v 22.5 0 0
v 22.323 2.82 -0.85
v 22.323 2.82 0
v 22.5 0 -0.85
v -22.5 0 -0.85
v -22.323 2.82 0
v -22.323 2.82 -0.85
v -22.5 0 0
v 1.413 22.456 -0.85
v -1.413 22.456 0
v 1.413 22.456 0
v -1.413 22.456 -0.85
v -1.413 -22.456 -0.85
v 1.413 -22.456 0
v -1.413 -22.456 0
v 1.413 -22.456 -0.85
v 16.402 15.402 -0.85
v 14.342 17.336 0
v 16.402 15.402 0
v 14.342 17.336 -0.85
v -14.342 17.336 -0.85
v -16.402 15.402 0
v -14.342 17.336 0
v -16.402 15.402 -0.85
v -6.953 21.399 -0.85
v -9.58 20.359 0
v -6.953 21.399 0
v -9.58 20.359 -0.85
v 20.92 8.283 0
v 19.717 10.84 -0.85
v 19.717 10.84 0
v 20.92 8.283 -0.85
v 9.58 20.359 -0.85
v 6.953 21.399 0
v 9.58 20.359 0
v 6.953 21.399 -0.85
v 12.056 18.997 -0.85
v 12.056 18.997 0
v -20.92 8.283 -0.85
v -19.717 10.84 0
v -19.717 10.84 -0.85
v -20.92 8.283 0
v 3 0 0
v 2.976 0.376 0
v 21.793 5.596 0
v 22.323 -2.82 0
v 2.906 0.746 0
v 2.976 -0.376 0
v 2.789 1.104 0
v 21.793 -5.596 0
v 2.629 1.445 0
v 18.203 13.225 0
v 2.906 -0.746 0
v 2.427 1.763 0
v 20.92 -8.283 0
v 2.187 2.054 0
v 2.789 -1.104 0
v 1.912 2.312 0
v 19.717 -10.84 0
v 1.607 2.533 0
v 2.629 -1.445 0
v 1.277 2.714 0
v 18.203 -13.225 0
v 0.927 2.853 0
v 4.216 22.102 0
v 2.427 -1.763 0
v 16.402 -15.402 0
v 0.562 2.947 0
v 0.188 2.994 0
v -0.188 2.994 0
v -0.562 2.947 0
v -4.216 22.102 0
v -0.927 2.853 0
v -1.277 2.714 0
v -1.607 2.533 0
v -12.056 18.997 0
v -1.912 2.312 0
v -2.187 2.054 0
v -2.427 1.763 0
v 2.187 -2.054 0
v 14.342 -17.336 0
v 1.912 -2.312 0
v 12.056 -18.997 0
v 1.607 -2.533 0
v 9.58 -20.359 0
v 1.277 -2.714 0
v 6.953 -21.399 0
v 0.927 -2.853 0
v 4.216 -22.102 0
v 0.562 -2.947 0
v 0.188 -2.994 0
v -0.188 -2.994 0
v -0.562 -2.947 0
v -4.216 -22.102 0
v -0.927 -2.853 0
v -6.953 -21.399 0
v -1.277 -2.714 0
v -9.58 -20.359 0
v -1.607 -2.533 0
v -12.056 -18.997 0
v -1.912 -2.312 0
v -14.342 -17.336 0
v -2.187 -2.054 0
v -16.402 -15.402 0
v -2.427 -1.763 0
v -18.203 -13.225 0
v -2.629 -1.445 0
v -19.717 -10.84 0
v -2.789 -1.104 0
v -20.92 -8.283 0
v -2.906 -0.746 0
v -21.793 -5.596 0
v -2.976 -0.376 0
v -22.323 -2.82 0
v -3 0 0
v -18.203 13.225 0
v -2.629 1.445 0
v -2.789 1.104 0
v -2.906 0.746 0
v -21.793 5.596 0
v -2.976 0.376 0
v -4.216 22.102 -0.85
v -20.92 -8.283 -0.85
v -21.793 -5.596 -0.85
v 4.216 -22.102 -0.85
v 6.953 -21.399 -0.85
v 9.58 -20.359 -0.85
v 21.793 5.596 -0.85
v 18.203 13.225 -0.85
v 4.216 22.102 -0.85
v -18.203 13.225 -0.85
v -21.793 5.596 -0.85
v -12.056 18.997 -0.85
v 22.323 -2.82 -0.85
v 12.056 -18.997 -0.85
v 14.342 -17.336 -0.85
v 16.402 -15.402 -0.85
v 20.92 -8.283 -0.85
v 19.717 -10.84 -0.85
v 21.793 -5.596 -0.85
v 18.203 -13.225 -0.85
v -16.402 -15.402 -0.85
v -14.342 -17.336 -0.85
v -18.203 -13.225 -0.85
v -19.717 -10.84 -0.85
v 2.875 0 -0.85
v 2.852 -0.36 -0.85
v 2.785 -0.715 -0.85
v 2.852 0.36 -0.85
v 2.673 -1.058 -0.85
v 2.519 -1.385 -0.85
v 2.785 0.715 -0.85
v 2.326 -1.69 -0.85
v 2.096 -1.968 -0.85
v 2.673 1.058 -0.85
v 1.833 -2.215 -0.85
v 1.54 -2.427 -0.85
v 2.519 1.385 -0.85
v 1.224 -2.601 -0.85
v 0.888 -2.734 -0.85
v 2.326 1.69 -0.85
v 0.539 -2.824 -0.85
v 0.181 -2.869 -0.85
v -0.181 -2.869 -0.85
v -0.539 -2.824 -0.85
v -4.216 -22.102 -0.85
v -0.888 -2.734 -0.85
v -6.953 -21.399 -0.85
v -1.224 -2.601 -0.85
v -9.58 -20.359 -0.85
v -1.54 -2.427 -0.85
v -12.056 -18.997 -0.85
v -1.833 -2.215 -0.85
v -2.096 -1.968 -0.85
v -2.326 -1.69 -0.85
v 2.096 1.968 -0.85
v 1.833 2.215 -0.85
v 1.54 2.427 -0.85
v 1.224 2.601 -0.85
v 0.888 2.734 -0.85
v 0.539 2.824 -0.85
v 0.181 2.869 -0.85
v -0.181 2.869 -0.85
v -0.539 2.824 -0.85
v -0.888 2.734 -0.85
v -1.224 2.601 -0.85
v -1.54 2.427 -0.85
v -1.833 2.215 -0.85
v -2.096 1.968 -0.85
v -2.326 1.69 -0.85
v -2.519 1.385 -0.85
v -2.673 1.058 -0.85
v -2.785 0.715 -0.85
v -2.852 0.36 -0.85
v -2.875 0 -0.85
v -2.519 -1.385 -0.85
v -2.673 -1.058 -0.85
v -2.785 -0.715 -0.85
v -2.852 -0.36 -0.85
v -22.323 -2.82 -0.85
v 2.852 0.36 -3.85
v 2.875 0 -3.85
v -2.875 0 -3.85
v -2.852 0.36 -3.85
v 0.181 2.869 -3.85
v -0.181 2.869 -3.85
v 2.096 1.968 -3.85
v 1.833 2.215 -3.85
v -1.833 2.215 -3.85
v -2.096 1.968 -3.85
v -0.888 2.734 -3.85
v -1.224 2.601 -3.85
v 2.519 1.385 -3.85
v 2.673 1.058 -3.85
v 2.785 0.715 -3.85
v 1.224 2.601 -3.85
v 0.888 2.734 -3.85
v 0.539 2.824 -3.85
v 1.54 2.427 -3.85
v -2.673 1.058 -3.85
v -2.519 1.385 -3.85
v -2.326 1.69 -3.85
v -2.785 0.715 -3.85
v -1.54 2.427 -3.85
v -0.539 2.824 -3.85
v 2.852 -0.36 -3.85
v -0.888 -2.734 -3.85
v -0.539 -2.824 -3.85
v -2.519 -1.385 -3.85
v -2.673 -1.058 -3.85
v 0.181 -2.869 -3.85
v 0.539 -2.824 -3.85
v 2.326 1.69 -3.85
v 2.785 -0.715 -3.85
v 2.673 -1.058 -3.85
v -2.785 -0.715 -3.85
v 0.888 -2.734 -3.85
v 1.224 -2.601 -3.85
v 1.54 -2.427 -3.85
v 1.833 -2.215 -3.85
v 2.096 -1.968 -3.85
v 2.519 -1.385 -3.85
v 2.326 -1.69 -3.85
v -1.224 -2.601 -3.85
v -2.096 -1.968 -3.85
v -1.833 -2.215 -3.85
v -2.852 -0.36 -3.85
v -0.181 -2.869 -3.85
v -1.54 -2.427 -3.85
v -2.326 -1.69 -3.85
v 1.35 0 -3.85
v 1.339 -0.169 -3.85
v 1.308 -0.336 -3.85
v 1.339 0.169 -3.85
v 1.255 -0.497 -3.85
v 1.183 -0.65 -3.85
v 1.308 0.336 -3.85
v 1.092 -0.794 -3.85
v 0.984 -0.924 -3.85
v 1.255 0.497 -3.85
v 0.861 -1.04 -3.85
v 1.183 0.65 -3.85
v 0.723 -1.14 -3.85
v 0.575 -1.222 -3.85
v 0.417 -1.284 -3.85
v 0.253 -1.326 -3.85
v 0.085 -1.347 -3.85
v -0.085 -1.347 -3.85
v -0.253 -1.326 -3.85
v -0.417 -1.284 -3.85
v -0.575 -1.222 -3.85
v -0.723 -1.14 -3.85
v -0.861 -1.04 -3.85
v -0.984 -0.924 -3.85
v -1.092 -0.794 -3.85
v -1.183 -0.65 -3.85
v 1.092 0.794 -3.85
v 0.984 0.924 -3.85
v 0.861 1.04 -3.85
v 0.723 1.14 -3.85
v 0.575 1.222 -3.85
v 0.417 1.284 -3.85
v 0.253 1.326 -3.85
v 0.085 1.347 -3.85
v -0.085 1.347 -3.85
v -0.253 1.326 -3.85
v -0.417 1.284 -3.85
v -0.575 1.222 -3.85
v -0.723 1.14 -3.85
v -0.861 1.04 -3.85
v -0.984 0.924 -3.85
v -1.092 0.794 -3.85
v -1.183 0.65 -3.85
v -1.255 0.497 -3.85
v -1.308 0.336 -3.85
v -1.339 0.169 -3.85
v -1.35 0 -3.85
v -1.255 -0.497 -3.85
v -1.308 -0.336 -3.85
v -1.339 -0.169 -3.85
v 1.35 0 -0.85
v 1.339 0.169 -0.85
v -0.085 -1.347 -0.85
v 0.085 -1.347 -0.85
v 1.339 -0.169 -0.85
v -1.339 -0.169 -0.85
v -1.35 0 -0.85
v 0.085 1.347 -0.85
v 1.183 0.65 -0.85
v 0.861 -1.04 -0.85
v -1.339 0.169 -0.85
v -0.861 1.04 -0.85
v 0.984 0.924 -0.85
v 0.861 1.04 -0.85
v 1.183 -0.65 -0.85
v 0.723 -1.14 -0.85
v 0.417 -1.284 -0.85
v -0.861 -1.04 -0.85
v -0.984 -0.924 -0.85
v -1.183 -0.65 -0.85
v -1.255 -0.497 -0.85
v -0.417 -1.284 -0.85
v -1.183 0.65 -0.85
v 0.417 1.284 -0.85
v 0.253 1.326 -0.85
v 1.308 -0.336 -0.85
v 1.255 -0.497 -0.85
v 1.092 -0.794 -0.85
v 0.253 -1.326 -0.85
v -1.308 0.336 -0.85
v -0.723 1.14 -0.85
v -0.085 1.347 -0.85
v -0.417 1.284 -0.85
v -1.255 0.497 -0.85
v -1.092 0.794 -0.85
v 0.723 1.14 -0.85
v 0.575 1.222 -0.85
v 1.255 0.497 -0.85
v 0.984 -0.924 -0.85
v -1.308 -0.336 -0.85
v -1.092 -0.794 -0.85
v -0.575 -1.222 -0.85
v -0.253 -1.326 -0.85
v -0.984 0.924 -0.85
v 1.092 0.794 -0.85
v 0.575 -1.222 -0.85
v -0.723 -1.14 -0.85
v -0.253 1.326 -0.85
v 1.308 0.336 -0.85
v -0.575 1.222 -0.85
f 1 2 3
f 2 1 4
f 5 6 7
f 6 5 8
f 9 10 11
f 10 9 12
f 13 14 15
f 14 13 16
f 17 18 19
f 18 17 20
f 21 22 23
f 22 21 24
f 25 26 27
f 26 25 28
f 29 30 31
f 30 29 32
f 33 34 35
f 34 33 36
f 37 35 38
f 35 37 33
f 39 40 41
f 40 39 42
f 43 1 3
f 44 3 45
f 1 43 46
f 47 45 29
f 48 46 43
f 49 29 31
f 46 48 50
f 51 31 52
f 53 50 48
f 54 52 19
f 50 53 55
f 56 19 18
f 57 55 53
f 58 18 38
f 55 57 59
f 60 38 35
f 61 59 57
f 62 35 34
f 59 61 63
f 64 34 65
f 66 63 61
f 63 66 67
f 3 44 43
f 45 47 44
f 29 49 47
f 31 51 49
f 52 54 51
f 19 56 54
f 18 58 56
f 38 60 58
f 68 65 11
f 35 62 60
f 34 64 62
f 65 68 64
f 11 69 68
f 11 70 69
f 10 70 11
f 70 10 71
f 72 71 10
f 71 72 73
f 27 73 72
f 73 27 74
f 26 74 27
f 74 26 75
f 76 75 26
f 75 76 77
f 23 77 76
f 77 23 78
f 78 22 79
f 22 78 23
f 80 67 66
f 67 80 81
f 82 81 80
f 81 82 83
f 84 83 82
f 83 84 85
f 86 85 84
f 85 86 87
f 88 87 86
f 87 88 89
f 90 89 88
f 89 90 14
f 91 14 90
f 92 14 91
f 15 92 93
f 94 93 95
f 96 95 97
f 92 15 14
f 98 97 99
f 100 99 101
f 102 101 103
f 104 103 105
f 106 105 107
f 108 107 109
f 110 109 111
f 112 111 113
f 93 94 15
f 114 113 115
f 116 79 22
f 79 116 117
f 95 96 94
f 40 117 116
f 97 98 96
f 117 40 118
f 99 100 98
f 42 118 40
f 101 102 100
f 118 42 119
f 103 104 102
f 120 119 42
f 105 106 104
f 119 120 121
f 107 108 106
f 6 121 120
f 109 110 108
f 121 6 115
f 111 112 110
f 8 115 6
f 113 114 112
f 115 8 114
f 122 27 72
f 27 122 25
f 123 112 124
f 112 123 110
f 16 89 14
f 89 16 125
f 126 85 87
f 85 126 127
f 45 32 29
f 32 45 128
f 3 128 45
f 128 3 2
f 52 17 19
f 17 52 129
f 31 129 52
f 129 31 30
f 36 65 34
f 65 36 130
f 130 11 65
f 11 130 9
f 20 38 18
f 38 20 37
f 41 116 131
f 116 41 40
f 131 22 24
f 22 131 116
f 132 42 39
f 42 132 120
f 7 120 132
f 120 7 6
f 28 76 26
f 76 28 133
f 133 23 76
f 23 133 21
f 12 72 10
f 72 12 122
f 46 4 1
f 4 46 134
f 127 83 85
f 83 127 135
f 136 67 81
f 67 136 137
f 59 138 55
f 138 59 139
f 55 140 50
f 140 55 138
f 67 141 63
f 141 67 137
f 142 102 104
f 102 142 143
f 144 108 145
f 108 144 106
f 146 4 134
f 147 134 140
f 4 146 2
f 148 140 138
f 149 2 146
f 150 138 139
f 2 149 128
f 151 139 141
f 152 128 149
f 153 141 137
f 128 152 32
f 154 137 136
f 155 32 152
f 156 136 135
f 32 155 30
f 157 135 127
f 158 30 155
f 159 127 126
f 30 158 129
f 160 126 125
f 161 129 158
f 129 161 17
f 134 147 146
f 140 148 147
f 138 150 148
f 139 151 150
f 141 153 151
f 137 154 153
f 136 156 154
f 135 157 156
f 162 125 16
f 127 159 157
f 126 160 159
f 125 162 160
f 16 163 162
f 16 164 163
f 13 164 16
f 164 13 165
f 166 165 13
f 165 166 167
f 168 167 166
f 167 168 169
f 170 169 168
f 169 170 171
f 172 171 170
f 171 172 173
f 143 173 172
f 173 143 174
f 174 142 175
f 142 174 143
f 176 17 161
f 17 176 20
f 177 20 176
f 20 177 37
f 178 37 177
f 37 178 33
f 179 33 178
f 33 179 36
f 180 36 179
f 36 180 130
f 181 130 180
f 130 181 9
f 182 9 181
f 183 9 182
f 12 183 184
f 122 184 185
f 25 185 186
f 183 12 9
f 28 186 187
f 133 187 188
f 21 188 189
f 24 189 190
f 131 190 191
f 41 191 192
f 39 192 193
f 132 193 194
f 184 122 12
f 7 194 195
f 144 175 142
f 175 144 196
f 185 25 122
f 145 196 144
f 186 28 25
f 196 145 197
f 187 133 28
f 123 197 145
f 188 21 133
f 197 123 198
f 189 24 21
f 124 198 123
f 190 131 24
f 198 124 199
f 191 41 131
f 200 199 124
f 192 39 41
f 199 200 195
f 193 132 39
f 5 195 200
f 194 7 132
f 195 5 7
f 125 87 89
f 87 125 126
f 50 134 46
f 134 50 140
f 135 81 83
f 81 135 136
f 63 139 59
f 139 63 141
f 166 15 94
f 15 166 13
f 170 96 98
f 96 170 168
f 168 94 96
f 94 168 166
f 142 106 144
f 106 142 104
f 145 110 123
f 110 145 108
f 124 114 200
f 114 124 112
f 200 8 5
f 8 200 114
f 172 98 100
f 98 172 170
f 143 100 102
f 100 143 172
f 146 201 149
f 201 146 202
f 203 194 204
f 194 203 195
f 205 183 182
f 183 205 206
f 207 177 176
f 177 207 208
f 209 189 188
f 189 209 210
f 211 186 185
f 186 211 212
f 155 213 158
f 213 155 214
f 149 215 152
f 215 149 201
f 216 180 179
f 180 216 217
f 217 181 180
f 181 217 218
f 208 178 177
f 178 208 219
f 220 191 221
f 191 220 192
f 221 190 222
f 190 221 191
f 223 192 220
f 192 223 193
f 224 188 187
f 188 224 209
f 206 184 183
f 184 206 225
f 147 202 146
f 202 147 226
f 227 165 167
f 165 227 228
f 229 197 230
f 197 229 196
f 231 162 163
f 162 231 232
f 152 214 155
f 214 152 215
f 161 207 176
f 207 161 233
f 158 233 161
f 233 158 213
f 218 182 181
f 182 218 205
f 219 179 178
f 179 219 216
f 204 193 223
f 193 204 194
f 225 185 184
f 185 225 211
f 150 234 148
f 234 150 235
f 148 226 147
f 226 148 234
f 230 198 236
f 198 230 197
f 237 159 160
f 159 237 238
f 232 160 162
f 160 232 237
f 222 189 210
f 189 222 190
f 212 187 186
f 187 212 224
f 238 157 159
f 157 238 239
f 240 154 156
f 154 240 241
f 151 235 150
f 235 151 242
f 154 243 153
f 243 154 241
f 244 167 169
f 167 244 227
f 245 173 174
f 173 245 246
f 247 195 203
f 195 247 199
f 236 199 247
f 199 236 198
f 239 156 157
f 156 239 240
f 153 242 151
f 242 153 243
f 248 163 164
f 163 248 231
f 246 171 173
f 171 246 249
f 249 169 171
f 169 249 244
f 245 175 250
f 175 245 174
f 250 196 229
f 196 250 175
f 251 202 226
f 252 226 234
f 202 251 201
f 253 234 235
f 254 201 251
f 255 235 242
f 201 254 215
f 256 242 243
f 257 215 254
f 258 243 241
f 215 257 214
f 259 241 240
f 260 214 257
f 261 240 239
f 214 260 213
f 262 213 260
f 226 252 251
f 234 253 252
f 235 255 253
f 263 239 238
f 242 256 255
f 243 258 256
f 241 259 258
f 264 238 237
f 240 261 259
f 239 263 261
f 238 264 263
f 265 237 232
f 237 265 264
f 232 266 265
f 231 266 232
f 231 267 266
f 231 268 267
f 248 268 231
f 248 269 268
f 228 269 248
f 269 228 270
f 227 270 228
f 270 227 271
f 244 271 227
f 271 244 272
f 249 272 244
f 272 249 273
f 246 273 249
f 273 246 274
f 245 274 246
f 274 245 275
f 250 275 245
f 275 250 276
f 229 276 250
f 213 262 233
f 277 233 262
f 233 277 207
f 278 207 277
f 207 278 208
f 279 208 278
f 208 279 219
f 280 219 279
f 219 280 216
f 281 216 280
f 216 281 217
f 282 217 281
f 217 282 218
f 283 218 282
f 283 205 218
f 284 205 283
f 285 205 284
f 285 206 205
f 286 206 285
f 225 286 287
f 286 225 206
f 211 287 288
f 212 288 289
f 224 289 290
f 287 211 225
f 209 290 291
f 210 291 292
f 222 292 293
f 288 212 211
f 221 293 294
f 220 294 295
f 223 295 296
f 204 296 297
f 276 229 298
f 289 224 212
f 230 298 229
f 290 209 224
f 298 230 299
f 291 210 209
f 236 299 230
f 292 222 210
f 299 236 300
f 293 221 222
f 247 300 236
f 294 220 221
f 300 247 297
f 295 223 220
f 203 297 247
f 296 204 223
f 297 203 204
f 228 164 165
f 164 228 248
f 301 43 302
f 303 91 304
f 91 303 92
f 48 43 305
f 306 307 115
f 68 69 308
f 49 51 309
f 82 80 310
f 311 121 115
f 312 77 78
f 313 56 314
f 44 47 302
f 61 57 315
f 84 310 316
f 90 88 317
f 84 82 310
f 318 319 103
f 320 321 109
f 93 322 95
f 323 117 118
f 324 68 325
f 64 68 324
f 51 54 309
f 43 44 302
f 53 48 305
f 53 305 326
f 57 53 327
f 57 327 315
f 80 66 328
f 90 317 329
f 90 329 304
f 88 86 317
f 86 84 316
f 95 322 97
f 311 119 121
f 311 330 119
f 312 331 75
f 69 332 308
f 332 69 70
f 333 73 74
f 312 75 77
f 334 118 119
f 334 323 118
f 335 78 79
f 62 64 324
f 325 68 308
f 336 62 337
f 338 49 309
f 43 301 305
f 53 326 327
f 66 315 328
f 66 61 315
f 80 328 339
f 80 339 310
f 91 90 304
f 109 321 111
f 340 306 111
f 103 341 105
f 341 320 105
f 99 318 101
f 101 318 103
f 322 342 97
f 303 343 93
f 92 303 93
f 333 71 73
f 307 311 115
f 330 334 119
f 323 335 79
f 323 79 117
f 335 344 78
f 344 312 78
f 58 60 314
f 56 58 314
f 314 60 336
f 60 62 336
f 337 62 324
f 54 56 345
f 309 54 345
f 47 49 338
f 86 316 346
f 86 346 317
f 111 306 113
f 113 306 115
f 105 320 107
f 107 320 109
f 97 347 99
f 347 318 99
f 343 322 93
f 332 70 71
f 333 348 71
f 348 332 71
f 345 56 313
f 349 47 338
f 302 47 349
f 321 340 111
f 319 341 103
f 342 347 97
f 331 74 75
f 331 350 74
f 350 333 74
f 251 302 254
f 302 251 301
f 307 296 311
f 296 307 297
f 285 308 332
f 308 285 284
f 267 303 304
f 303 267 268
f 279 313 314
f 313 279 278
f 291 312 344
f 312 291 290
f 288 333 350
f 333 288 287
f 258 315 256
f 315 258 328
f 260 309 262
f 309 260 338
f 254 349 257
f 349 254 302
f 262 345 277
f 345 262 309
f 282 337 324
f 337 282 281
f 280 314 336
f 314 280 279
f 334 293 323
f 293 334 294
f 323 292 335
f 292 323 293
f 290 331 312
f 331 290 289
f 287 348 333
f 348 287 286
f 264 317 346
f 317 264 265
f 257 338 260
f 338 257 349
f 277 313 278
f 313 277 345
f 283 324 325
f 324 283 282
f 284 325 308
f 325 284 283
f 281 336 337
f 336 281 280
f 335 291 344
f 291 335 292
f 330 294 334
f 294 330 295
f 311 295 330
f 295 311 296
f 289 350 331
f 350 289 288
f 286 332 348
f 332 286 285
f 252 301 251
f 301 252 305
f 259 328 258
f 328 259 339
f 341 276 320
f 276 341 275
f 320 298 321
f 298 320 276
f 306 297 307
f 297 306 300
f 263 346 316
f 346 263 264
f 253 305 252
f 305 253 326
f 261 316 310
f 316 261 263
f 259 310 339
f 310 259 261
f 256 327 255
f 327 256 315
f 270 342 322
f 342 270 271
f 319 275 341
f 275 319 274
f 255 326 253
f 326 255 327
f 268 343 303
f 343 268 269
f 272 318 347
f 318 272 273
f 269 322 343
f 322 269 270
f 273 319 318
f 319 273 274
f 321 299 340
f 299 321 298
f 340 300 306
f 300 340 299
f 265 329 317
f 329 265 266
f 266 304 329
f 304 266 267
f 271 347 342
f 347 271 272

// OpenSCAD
$fn = 50;


difference() {
	union() {
		translate(v = [0, 0, -0.8500000000]) {
			cylinder(h = 0.8500000000, r = 22.5000000000);
		}
		translate(v = [0, 0, -3.8500000000]) {
			cylinder(h = 3.8500000000, r = 2.8750000000);
		}
	}
	union() {
		translate(v = [0, 0, 0]) {
			rotate(a = [0, 0, 0]) {
				difference() {
					union() {
						translate(v = [0, 0, -3.8500000000]) {
							cylinder(h = 3.8500000000, r = 1.0000000000);
						}
						translate(v = [0, 0, -0.8500000000]) {
							cylinder(h = 0.8500000000, r1 = 1.3500000000, r2 = 3.0000000000);
						}
						translate(v = [0, 0, -3.8500000000]) {
							cylinder(h = 3.8500000000, r = 1.3500000000);
						}
						translate(v = [0, 0, -3.8500000000]) {
							cylinder(h = 3.8500000000, r = 1.0000000000);
						}
					}
					union();
				}
			}
		}
	}
}
